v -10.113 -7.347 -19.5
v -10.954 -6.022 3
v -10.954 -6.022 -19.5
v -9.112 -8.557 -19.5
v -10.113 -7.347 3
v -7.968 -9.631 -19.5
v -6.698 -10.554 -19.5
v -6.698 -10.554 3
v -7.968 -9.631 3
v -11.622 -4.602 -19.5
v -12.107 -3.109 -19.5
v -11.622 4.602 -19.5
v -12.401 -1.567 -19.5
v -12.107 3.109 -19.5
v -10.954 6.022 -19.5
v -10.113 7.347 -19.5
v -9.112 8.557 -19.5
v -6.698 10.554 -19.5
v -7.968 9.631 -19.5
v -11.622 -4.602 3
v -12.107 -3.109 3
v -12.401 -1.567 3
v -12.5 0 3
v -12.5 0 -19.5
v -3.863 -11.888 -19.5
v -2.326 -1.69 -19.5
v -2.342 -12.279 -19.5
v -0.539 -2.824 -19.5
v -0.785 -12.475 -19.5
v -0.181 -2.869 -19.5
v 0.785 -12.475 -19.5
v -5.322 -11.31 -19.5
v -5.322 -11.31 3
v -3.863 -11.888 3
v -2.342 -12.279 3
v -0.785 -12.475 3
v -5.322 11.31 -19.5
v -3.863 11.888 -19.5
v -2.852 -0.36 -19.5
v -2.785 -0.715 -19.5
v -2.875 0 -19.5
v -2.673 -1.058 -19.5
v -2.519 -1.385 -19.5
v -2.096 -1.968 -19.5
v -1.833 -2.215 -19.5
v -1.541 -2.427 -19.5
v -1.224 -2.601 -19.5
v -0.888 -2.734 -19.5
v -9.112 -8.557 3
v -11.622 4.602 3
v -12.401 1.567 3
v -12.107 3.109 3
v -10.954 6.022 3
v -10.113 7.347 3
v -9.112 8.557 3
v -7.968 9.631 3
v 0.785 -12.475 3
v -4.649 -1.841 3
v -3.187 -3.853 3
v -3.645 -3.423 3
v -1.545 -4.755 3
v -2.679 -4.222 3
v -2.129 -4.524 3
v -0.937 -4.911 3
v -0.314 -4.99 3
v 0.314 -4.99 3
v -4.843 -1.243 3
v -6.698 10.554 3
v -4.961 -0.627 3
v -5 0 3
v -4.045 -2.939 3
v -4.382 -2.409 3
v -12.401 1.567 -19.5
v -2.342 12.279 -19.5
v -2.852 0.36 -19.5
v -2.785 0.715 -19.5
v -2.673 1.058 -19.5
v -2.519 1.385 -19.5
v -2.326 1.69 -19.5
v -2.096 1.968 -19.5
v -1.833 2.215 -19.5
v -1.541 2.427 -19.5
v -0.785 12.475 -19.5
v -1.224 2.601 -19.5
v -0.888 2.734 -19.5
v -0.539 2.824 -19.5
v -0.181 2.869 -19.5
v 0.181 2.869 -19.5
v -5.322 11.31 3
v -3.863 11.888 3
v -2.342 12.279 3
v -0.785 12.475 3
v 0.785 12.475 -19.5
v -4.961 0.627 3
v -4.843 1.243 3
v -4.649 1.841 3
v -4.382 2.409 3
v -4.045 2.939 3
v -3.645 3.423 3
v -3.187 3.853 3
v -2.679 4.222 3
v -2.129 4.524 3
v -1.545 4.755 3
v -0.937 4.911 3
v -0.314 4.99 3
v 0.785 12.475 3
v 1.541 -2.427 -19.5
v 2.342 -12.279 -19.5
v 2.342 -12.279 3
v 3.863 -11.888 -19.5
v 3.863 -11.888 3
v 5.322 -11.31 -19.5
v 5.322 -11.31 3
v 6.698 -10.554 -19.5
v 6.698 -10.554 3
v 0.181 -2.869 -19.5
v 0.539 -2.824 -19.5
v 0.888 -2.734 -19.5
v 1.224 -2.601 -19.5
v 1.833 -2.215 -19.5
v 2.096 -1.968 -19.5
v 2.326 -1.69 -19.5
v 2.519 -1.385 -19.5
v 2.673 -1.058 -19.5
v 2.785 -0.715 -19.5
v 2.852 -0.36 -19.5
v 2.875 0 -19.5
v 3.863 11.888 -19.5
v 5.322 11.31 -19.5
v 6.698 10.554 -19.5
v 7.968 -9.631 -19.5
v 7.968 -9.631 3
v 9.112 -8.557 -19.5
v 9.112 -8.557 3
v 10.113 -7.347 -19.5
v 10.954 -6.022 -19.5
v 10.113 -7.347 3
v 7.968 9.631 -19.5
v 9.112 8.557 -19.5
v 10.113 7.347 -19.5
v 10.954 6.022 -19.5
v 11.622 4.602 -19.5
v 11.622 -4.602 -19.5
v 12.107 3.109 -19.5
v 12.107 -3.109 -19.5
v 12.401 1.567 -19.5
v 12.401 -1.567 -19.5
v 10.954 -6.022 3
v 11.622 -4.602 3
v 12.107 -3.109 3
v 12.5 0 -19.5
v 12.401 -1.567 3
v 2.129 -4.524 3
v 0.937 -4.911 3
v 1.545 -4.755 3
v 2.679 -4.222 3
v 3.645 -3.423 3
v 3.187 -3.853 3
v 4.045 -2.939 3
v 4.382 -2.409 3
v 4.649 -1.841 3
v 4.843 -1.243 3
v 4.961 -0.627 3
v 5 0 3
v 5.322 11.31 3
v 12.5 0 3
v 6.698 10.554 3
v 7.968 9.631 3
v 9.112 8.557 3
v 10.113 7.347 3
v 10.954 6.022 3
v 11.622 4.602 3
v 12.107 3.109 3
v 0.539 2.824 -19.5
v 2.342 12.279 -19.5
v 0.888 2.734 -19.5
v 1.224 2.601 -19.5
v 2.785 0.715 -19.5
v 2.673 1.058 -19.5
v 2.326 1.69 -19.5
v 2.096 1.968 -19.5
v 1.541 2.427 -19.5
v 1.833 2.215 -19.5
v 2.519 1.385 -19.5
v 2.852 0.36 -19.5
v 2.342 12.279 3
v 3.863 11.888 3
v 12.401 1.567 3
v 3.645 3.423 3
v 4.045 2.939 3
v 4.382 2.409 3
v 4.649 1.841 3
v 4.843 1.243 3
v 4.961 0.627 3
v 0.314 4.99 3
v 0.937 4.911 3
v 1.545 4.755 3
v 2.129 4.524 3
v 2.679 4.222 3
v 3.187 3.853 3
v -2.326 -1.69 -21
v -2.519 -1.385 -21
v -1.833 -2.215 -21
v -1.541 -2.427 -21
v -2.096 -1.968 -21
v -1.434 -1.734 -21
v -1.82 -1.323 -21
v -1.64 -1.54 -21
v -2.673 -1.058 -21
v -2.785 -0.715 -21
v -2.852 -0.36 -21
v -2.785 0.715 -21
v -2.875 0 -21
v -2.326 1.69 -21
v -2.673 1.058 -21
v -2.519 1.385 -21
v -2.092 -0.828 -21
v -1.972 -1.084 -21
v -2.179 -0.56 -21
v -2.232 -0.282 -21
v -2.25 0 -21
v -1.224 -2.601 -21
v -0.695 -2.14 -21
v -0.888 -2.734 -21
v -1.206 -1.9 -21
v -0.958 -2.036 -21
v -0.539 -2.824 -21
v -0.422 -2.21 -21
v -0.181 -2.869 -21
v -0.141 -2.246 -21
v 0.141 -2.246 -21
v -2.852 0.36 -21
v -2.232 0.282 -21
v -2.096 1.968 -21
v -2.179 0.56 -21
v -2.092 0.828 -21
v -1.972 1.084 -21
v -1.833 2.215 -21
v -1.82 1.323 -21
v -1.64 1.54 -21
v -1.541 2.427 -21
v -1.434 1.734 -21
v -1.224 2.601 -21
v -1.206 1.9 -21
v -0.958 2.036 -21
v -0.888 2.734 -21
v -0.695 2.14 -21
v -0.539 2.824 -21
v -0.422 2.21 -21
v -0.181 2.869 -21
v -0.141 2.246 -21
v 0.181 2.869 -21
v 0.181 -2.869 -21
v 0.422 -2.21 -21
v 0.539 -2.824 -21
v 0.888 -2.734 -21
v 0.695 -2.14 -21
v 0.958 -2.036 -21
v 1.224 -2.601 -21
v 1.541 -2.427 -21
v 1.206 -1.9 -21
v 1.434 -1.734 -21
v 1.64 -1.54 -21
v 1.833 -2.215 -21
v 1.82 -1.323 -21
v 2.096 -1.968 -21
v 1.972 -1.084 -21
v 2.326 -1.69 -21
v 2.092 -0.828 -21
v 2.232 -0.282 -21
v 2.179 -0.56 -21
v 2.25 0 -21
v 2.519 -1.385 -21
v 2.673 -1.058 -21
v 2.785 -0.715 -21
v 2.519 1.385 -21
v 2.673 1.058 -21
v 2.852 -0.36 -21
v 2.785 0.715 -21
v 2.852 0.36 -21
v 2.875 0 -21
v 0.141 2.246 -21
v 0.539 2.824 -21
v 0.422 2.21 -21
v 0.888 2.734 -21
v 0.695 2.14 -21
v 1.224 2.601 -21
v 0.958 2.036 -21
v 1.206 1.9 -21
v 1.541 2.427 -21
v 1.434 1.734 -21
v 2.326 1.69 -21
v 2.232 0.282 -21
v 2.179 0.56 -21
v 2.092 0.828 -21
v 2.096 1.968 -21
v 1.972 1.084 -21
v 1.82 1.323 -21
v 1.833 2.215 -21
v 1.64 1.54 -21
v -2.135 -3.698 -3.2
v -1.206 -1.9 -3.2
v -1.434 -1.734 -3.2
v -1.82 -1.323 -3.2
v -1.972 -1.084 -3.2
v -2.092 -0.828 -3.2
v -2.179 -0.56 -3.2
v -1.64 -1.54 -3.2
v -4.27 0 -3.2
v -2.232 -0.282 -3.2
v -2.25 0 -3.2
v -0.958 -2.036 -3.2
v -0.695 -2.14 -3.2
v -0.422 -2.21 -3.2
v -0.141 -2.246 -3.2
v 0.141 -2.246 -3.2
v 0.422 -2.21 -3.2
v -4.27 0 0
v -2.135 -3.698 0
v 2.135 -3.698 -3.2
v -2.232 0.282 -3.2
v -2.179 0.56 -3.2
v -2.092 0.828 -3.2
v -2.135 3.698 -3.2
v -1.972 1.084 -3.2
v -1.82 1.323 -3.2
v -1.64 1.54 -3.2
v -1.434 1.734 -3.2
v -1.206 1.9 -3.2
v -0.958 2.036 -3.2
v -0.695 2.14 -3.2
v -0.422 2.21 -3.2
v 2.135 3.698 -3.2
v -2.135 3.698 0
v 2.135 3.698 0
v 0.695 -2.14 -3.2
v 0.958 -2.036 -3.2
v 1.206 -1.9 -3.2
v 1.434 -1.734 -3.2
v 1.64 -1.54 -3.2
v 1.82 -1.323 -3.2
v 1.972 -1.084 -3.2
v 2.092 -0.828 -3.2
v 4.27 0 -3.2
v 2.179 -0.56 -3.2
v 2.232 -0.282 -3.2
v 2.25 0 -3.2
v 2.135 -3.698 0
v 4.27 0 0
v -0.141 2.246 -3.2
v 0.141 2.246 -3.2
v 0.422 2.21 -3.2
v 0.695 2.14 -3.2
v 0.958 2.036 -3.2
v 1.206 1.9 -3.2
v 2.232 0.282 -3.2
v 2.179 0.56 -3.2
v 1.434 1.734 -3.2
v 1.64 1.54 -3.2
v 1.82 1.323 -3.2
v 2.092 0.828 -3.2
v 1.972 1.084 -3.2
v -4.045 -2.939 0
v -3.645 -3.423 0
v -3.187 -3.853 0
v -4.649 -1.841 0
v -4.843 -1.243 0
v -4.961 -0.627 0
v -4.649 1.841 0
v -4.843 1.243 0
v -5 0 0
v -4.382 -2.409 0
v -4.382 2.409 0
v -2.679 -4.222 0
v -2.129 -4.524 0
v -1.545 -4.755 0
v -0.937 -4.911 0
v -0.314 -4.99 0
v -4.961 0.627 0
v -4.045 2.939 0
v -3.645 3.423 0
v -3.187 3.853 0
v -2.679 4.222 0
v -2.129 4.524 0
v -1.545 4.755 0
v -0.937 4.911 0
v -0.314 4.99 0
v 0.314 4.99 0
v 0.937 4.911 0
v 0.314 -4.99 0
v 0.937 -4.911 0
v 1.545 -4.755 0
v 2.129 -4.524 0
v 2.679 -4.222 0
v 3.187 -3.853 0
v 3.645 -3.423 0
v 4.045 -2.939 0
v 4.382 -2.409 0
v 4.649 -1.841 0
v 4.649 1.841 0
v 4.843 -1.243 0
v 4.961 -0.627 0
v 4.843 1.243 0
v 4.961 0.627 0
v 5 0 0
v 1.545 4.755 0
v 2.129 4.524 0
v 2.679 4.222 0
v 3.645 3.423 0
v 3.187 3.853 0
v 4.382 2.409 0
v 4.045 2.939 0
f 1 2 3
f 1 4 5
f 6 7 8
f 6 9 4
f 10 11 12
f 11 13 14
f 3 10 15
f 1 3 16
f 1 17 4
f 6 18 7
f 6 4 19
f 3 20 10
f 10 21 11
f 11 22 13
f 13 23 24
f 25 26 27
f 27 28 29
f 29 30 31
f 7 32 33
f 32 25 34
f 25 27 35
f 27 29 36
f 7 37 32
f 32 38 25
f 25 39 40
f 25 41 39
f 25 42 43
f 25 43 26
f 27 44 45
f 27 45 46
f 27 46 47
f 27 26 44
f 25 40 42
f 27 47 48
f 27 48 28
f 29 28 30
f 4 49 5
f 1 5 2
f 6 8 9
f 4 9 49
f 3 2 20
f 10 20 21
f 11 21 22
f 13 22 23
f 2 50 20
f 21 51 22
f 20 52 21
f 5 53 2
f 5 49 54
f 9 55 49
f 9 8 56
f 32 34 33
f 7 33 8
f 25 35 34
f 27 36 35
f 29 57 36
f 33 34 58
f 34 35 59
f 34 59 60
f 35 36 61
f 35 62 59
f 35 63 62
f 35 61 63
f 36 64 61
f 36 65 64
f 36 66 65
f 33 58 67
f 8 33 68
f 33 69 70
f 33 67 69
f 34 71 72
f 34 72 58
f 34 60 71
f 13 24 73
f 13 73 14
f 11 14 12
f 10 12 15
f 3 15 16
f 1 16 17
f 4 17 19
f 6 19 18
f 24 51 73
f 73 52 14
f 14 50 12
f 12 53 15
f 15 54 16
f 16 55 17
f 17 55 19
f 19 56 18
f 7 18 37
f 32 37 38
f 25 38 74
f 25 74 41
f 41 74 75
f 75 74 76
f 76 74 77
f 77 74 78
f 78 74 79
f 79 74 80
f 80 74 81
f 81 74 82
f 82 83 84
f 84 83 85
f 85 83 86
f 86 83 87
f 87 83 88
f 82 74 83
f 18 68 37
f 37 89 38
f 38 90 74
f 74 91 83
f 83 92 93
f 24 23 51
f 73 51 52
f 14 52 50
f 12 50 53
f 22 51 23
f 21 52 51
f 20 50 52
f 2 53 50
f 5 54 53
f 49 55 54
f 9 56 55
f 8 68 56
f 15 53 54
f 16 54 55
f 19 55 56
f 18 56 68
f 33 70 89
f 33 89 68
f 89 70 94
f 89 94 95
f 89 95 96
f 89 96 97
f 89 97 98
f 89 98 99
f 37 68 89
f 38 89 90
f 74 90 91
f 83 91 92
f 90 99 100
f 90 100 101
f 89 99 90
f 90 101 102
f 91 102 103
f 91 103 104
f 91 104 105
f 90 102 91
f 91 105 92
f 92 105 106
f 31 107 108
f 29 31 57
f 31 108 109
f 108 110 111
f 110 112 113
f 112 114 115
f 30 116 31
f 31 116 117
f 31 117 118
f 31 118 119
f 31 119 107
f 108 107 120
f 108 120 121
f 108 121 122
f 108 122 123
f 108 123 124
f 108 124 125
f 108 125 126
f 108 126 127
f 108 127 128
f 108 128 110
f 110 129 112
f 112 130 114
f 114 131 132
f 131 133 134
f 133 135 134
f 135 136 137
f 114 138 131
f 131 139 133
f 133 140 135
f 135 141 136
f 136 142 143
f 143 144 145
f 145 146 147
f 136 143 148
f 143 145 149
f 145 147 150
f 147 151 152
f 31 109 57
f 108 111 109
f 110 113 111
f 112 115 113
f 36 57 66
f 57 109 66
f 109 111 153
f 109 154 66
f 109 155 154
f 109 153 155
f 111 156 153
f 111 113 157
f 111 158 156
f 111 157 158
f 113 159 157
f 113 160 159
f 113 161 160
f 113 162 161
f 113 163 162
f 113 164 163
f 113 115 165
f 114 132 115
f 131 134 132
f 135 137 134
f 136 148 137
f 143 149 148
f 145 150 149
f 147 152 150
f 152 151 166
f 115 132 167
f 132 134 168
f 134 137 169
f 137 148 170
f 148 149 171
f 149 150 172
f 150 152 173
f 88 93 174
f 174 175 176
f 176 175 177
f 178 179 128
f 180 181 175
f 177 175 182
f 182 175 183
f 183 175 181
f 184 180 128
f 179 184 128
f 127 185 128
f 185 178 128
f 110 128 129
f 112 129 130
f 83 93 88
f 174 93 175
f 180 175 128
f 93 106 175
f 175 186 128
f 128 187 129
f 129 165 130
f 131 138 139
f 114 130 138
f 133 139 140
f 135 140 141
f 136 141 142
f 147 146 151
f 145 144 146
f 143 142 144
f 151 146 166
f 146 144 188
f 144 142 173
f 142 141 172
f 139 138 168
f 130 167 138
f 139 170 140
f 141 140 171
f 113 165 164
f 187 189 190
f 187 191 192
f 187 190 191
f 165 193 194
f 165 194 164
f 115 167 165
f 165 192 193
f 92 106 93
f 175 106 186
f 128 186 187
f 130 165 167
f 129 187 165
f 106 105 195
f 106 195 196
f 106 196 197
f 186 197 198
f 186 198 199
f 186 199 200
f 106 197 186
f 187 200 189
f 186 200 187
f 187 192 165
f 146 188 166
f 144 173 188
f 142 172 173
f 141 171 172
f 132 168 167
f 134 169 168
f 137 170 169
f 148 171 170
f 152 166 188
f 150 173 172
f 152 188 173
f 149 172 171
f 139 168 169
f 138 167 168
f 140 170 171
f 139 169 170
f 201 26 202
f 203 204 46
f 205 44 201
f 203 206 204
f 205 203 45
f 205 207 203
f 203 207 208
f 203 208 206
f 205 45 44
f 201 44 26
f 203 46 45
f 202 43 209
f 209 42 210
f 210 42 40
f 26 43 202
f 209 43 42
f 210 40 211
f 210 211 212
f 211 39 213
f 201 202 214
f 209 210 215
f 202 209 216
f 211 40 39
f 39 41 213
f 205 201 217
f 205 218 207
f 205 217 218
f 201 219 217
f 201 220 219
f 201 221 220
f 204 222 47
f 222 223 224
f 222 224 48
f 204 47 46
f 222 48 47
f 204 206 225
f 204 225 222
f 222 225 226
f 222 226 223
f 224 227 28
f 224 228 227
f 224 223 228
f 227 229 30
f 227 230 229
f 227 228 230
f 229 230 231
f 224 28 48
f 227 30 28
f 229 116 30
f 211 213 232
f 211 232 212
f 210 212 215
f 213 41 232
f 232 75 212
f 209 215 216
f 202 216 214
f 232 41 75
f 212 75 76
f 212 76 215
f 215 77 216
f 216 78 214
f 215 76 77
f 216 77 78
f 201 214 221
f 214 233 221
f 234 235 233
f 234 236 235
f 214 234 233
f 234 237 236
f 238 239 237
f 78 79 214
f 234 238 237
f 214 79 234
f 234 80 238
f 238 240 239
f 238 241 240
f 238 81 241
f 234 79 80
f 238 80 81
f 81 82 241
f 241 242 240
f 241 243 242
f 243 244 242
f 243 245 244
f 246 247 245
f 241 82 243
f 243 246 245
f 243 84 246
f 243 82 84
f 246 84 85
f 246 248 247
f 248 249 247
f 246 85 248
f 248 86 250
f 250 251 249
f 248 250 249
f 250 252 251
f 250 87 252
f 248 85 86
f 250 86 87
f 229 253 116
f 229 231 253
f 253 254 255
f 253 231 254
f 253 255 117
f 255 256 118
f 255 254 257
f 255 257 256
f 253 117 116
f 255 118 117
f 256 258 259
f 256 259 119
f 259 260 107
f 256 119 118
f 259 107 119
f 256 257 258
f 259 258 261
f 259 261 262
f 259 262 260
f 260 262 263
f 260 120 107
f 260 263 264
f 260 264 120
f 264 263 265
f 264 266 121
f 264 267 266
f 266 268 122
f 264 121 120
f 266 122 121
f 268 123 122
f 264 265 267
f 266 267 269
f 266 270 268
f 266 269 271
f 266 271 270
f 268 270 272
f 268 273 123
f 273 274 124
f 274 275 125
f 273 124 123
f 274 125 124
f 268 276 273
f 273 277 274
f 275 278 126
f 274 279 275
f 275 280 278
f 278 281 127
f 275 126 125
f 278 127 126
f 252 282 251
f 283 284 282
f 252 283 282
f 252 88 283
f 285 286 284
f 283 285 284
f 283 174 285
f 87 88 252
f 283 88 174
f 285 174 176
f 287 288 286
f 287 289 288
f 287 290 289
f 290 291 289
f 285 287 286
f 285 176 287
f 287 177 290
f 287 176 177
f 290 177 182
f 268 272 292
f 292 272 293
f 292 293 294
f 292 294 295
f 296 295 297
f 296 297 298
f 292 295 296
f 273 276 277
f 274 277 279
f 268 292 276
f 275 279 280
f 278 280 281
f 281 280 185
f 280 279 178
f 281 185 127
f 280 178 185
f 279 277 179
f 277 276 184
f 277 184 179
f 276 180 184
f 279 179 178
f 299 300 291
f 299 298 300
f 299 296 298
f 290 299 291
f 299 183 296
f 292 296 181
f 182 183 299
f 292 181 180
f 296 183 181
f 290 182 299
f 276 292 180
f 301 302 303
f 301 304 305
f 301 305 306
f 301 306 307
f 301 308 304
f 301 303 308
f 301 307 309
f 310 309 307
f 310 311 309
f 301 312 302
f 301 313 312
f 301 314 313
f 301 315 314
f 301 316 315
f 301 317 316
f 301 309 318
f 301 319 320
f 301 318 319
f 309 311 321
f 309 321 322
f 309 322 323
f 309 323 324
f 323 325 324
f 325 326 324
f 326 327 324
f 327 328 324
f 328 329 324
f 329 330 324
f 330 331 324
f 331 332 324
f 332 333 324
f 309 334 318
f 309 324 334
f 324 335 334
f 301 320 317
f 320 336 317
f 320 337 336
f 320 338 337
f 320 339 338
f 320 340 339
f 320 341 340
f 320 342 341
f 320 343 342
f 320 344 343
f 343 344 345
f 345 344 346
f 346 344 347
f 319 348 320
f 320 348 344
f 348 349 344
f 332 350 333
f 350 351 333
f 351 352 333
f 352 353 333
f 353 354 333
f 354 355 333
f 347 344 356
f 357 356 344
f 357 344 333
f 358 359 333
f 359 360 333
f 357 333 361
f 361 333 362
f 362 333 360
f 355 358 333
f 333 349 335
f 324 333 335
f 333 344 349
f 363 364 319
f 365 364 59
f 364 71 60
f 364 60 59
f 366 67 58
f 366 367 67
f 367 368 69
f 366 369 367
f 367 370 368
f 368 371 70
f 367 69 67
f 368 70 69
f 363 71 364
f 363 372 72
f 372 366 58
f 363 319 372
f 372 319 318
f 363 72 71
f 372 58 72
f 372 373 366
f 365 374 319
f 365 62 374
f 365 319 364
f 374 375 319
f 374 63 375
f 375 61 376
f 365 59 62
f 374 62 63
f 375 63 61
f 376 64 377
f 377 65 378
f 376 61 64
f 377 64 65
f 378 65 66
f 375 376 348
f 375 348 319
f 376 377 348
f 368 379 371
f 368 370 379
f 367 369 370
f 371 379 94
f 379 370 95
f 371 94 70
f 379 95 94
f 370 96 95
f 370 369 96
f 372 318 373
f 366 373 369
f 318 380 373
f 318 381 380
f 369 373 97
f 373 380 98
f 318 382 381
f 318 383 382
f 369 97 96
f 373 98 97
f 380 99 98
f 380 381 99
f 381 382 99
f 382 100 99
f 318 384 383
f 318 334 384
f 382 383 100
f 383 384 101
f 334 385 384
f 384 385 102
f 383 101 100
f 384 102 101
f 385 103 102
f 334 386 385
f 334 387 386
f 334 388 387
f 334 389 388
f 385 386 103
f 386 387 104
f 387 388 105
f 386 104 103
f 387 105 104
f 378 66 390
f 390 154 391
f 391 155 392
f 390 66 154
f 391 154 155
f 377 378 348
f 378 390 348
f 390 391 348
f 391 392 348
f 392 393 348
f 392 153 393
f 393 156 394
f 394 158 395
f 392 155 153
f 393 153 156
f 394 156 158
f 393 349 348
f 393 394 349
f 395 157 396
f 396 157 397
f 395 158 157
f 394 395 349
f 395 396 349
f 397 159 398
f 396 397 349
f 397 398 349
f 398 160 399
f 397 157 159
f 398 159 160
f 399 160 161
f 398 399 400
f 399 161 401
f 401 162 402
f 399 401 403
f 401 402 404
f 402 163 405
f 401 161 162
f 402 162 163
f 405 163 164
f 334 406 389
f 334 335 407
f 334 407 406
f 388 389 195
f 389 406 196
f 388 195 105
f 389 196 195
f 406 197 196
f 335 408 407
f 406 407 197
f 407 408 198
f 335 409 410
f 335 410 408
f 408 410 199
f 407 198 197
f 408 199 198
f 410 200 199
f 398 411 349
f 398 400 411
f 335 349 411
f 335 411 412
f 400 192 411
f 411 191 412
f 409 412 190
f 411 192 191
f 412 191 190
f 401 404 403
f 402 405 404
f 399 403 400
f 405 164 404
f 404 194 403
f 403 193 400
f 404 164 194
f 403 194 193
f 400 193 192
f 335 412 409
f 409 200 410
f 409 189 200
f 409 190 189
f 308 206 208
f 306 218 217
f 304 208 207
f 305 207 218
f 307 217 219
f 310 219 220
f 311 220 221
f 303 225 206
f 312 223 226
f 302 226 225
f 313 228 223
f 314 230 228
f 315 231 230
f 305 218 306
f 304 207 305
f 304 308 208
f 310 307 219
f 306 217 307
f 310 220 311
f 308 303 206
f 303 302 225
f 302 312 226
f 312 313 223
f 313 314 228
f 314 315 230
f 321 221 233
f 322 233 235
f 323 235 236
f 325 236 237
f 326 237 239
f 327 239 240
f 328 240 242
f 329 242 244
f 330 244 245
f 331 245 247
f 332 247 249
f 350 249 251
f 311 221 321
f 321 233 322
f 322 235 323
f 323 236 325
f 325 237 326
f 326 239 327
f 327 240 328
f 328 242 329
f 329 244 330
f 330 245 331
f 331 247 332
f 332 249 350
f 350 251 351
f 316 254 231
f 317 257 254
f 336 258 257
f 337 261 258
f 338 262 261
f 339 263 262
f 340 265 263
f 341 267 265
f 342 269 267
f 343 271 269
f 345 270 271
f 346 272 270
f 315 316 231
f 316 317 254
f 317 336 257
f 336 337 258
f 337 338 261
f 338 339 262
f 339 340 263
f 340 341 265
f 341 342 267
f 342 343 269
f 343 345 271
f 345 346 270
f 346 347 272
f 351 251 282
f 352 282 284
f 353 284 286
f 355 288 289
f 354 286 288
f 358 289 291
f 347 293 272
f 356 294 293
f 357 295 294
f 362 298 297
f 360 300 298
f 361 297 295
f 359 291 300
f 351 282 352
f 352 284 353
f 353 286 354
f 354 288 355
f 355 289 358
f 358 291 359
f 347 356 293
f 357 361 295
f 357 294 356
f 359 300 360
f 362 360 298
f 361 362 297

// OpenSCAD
$fn = 50;

difference() {
	union() {
		translate(v = [0, 0, -19.5]) {
			cylinder(h = 22.5, r = 12.5);
		}
		#translate(v = [0, 0, -21.0]) {
			cylinder(h = 21, r = 2.875);
		}
	}
	union() {
		translate(v = [0, 0, 0]) {
			rotate(a = [0, 0, 0]) {
				difference() {
					union() {
						translate(v = [0, 0, -3.2]) {
							linear_extrude(height = 3.2) {
								polygon(points = [[4.2698, 0.0], [2.1349000000000005, 3.697755269078796], [-2.134899999999999, 3.6977552690787965], [-4.2698, 5.228996902999369e-16], [-2.134900000000002, -3.6977552690787956], [2.1348999999999974, -3.697755269078798]]);
							}
						}
					}
					union();
				}
			}
		}
		#cylinder(h = 3, r = 5.0);
		#translate(v = [0, 0, -100.0]) {
			cylinder(h = 200, r = 2.25);
		}
	}
}
